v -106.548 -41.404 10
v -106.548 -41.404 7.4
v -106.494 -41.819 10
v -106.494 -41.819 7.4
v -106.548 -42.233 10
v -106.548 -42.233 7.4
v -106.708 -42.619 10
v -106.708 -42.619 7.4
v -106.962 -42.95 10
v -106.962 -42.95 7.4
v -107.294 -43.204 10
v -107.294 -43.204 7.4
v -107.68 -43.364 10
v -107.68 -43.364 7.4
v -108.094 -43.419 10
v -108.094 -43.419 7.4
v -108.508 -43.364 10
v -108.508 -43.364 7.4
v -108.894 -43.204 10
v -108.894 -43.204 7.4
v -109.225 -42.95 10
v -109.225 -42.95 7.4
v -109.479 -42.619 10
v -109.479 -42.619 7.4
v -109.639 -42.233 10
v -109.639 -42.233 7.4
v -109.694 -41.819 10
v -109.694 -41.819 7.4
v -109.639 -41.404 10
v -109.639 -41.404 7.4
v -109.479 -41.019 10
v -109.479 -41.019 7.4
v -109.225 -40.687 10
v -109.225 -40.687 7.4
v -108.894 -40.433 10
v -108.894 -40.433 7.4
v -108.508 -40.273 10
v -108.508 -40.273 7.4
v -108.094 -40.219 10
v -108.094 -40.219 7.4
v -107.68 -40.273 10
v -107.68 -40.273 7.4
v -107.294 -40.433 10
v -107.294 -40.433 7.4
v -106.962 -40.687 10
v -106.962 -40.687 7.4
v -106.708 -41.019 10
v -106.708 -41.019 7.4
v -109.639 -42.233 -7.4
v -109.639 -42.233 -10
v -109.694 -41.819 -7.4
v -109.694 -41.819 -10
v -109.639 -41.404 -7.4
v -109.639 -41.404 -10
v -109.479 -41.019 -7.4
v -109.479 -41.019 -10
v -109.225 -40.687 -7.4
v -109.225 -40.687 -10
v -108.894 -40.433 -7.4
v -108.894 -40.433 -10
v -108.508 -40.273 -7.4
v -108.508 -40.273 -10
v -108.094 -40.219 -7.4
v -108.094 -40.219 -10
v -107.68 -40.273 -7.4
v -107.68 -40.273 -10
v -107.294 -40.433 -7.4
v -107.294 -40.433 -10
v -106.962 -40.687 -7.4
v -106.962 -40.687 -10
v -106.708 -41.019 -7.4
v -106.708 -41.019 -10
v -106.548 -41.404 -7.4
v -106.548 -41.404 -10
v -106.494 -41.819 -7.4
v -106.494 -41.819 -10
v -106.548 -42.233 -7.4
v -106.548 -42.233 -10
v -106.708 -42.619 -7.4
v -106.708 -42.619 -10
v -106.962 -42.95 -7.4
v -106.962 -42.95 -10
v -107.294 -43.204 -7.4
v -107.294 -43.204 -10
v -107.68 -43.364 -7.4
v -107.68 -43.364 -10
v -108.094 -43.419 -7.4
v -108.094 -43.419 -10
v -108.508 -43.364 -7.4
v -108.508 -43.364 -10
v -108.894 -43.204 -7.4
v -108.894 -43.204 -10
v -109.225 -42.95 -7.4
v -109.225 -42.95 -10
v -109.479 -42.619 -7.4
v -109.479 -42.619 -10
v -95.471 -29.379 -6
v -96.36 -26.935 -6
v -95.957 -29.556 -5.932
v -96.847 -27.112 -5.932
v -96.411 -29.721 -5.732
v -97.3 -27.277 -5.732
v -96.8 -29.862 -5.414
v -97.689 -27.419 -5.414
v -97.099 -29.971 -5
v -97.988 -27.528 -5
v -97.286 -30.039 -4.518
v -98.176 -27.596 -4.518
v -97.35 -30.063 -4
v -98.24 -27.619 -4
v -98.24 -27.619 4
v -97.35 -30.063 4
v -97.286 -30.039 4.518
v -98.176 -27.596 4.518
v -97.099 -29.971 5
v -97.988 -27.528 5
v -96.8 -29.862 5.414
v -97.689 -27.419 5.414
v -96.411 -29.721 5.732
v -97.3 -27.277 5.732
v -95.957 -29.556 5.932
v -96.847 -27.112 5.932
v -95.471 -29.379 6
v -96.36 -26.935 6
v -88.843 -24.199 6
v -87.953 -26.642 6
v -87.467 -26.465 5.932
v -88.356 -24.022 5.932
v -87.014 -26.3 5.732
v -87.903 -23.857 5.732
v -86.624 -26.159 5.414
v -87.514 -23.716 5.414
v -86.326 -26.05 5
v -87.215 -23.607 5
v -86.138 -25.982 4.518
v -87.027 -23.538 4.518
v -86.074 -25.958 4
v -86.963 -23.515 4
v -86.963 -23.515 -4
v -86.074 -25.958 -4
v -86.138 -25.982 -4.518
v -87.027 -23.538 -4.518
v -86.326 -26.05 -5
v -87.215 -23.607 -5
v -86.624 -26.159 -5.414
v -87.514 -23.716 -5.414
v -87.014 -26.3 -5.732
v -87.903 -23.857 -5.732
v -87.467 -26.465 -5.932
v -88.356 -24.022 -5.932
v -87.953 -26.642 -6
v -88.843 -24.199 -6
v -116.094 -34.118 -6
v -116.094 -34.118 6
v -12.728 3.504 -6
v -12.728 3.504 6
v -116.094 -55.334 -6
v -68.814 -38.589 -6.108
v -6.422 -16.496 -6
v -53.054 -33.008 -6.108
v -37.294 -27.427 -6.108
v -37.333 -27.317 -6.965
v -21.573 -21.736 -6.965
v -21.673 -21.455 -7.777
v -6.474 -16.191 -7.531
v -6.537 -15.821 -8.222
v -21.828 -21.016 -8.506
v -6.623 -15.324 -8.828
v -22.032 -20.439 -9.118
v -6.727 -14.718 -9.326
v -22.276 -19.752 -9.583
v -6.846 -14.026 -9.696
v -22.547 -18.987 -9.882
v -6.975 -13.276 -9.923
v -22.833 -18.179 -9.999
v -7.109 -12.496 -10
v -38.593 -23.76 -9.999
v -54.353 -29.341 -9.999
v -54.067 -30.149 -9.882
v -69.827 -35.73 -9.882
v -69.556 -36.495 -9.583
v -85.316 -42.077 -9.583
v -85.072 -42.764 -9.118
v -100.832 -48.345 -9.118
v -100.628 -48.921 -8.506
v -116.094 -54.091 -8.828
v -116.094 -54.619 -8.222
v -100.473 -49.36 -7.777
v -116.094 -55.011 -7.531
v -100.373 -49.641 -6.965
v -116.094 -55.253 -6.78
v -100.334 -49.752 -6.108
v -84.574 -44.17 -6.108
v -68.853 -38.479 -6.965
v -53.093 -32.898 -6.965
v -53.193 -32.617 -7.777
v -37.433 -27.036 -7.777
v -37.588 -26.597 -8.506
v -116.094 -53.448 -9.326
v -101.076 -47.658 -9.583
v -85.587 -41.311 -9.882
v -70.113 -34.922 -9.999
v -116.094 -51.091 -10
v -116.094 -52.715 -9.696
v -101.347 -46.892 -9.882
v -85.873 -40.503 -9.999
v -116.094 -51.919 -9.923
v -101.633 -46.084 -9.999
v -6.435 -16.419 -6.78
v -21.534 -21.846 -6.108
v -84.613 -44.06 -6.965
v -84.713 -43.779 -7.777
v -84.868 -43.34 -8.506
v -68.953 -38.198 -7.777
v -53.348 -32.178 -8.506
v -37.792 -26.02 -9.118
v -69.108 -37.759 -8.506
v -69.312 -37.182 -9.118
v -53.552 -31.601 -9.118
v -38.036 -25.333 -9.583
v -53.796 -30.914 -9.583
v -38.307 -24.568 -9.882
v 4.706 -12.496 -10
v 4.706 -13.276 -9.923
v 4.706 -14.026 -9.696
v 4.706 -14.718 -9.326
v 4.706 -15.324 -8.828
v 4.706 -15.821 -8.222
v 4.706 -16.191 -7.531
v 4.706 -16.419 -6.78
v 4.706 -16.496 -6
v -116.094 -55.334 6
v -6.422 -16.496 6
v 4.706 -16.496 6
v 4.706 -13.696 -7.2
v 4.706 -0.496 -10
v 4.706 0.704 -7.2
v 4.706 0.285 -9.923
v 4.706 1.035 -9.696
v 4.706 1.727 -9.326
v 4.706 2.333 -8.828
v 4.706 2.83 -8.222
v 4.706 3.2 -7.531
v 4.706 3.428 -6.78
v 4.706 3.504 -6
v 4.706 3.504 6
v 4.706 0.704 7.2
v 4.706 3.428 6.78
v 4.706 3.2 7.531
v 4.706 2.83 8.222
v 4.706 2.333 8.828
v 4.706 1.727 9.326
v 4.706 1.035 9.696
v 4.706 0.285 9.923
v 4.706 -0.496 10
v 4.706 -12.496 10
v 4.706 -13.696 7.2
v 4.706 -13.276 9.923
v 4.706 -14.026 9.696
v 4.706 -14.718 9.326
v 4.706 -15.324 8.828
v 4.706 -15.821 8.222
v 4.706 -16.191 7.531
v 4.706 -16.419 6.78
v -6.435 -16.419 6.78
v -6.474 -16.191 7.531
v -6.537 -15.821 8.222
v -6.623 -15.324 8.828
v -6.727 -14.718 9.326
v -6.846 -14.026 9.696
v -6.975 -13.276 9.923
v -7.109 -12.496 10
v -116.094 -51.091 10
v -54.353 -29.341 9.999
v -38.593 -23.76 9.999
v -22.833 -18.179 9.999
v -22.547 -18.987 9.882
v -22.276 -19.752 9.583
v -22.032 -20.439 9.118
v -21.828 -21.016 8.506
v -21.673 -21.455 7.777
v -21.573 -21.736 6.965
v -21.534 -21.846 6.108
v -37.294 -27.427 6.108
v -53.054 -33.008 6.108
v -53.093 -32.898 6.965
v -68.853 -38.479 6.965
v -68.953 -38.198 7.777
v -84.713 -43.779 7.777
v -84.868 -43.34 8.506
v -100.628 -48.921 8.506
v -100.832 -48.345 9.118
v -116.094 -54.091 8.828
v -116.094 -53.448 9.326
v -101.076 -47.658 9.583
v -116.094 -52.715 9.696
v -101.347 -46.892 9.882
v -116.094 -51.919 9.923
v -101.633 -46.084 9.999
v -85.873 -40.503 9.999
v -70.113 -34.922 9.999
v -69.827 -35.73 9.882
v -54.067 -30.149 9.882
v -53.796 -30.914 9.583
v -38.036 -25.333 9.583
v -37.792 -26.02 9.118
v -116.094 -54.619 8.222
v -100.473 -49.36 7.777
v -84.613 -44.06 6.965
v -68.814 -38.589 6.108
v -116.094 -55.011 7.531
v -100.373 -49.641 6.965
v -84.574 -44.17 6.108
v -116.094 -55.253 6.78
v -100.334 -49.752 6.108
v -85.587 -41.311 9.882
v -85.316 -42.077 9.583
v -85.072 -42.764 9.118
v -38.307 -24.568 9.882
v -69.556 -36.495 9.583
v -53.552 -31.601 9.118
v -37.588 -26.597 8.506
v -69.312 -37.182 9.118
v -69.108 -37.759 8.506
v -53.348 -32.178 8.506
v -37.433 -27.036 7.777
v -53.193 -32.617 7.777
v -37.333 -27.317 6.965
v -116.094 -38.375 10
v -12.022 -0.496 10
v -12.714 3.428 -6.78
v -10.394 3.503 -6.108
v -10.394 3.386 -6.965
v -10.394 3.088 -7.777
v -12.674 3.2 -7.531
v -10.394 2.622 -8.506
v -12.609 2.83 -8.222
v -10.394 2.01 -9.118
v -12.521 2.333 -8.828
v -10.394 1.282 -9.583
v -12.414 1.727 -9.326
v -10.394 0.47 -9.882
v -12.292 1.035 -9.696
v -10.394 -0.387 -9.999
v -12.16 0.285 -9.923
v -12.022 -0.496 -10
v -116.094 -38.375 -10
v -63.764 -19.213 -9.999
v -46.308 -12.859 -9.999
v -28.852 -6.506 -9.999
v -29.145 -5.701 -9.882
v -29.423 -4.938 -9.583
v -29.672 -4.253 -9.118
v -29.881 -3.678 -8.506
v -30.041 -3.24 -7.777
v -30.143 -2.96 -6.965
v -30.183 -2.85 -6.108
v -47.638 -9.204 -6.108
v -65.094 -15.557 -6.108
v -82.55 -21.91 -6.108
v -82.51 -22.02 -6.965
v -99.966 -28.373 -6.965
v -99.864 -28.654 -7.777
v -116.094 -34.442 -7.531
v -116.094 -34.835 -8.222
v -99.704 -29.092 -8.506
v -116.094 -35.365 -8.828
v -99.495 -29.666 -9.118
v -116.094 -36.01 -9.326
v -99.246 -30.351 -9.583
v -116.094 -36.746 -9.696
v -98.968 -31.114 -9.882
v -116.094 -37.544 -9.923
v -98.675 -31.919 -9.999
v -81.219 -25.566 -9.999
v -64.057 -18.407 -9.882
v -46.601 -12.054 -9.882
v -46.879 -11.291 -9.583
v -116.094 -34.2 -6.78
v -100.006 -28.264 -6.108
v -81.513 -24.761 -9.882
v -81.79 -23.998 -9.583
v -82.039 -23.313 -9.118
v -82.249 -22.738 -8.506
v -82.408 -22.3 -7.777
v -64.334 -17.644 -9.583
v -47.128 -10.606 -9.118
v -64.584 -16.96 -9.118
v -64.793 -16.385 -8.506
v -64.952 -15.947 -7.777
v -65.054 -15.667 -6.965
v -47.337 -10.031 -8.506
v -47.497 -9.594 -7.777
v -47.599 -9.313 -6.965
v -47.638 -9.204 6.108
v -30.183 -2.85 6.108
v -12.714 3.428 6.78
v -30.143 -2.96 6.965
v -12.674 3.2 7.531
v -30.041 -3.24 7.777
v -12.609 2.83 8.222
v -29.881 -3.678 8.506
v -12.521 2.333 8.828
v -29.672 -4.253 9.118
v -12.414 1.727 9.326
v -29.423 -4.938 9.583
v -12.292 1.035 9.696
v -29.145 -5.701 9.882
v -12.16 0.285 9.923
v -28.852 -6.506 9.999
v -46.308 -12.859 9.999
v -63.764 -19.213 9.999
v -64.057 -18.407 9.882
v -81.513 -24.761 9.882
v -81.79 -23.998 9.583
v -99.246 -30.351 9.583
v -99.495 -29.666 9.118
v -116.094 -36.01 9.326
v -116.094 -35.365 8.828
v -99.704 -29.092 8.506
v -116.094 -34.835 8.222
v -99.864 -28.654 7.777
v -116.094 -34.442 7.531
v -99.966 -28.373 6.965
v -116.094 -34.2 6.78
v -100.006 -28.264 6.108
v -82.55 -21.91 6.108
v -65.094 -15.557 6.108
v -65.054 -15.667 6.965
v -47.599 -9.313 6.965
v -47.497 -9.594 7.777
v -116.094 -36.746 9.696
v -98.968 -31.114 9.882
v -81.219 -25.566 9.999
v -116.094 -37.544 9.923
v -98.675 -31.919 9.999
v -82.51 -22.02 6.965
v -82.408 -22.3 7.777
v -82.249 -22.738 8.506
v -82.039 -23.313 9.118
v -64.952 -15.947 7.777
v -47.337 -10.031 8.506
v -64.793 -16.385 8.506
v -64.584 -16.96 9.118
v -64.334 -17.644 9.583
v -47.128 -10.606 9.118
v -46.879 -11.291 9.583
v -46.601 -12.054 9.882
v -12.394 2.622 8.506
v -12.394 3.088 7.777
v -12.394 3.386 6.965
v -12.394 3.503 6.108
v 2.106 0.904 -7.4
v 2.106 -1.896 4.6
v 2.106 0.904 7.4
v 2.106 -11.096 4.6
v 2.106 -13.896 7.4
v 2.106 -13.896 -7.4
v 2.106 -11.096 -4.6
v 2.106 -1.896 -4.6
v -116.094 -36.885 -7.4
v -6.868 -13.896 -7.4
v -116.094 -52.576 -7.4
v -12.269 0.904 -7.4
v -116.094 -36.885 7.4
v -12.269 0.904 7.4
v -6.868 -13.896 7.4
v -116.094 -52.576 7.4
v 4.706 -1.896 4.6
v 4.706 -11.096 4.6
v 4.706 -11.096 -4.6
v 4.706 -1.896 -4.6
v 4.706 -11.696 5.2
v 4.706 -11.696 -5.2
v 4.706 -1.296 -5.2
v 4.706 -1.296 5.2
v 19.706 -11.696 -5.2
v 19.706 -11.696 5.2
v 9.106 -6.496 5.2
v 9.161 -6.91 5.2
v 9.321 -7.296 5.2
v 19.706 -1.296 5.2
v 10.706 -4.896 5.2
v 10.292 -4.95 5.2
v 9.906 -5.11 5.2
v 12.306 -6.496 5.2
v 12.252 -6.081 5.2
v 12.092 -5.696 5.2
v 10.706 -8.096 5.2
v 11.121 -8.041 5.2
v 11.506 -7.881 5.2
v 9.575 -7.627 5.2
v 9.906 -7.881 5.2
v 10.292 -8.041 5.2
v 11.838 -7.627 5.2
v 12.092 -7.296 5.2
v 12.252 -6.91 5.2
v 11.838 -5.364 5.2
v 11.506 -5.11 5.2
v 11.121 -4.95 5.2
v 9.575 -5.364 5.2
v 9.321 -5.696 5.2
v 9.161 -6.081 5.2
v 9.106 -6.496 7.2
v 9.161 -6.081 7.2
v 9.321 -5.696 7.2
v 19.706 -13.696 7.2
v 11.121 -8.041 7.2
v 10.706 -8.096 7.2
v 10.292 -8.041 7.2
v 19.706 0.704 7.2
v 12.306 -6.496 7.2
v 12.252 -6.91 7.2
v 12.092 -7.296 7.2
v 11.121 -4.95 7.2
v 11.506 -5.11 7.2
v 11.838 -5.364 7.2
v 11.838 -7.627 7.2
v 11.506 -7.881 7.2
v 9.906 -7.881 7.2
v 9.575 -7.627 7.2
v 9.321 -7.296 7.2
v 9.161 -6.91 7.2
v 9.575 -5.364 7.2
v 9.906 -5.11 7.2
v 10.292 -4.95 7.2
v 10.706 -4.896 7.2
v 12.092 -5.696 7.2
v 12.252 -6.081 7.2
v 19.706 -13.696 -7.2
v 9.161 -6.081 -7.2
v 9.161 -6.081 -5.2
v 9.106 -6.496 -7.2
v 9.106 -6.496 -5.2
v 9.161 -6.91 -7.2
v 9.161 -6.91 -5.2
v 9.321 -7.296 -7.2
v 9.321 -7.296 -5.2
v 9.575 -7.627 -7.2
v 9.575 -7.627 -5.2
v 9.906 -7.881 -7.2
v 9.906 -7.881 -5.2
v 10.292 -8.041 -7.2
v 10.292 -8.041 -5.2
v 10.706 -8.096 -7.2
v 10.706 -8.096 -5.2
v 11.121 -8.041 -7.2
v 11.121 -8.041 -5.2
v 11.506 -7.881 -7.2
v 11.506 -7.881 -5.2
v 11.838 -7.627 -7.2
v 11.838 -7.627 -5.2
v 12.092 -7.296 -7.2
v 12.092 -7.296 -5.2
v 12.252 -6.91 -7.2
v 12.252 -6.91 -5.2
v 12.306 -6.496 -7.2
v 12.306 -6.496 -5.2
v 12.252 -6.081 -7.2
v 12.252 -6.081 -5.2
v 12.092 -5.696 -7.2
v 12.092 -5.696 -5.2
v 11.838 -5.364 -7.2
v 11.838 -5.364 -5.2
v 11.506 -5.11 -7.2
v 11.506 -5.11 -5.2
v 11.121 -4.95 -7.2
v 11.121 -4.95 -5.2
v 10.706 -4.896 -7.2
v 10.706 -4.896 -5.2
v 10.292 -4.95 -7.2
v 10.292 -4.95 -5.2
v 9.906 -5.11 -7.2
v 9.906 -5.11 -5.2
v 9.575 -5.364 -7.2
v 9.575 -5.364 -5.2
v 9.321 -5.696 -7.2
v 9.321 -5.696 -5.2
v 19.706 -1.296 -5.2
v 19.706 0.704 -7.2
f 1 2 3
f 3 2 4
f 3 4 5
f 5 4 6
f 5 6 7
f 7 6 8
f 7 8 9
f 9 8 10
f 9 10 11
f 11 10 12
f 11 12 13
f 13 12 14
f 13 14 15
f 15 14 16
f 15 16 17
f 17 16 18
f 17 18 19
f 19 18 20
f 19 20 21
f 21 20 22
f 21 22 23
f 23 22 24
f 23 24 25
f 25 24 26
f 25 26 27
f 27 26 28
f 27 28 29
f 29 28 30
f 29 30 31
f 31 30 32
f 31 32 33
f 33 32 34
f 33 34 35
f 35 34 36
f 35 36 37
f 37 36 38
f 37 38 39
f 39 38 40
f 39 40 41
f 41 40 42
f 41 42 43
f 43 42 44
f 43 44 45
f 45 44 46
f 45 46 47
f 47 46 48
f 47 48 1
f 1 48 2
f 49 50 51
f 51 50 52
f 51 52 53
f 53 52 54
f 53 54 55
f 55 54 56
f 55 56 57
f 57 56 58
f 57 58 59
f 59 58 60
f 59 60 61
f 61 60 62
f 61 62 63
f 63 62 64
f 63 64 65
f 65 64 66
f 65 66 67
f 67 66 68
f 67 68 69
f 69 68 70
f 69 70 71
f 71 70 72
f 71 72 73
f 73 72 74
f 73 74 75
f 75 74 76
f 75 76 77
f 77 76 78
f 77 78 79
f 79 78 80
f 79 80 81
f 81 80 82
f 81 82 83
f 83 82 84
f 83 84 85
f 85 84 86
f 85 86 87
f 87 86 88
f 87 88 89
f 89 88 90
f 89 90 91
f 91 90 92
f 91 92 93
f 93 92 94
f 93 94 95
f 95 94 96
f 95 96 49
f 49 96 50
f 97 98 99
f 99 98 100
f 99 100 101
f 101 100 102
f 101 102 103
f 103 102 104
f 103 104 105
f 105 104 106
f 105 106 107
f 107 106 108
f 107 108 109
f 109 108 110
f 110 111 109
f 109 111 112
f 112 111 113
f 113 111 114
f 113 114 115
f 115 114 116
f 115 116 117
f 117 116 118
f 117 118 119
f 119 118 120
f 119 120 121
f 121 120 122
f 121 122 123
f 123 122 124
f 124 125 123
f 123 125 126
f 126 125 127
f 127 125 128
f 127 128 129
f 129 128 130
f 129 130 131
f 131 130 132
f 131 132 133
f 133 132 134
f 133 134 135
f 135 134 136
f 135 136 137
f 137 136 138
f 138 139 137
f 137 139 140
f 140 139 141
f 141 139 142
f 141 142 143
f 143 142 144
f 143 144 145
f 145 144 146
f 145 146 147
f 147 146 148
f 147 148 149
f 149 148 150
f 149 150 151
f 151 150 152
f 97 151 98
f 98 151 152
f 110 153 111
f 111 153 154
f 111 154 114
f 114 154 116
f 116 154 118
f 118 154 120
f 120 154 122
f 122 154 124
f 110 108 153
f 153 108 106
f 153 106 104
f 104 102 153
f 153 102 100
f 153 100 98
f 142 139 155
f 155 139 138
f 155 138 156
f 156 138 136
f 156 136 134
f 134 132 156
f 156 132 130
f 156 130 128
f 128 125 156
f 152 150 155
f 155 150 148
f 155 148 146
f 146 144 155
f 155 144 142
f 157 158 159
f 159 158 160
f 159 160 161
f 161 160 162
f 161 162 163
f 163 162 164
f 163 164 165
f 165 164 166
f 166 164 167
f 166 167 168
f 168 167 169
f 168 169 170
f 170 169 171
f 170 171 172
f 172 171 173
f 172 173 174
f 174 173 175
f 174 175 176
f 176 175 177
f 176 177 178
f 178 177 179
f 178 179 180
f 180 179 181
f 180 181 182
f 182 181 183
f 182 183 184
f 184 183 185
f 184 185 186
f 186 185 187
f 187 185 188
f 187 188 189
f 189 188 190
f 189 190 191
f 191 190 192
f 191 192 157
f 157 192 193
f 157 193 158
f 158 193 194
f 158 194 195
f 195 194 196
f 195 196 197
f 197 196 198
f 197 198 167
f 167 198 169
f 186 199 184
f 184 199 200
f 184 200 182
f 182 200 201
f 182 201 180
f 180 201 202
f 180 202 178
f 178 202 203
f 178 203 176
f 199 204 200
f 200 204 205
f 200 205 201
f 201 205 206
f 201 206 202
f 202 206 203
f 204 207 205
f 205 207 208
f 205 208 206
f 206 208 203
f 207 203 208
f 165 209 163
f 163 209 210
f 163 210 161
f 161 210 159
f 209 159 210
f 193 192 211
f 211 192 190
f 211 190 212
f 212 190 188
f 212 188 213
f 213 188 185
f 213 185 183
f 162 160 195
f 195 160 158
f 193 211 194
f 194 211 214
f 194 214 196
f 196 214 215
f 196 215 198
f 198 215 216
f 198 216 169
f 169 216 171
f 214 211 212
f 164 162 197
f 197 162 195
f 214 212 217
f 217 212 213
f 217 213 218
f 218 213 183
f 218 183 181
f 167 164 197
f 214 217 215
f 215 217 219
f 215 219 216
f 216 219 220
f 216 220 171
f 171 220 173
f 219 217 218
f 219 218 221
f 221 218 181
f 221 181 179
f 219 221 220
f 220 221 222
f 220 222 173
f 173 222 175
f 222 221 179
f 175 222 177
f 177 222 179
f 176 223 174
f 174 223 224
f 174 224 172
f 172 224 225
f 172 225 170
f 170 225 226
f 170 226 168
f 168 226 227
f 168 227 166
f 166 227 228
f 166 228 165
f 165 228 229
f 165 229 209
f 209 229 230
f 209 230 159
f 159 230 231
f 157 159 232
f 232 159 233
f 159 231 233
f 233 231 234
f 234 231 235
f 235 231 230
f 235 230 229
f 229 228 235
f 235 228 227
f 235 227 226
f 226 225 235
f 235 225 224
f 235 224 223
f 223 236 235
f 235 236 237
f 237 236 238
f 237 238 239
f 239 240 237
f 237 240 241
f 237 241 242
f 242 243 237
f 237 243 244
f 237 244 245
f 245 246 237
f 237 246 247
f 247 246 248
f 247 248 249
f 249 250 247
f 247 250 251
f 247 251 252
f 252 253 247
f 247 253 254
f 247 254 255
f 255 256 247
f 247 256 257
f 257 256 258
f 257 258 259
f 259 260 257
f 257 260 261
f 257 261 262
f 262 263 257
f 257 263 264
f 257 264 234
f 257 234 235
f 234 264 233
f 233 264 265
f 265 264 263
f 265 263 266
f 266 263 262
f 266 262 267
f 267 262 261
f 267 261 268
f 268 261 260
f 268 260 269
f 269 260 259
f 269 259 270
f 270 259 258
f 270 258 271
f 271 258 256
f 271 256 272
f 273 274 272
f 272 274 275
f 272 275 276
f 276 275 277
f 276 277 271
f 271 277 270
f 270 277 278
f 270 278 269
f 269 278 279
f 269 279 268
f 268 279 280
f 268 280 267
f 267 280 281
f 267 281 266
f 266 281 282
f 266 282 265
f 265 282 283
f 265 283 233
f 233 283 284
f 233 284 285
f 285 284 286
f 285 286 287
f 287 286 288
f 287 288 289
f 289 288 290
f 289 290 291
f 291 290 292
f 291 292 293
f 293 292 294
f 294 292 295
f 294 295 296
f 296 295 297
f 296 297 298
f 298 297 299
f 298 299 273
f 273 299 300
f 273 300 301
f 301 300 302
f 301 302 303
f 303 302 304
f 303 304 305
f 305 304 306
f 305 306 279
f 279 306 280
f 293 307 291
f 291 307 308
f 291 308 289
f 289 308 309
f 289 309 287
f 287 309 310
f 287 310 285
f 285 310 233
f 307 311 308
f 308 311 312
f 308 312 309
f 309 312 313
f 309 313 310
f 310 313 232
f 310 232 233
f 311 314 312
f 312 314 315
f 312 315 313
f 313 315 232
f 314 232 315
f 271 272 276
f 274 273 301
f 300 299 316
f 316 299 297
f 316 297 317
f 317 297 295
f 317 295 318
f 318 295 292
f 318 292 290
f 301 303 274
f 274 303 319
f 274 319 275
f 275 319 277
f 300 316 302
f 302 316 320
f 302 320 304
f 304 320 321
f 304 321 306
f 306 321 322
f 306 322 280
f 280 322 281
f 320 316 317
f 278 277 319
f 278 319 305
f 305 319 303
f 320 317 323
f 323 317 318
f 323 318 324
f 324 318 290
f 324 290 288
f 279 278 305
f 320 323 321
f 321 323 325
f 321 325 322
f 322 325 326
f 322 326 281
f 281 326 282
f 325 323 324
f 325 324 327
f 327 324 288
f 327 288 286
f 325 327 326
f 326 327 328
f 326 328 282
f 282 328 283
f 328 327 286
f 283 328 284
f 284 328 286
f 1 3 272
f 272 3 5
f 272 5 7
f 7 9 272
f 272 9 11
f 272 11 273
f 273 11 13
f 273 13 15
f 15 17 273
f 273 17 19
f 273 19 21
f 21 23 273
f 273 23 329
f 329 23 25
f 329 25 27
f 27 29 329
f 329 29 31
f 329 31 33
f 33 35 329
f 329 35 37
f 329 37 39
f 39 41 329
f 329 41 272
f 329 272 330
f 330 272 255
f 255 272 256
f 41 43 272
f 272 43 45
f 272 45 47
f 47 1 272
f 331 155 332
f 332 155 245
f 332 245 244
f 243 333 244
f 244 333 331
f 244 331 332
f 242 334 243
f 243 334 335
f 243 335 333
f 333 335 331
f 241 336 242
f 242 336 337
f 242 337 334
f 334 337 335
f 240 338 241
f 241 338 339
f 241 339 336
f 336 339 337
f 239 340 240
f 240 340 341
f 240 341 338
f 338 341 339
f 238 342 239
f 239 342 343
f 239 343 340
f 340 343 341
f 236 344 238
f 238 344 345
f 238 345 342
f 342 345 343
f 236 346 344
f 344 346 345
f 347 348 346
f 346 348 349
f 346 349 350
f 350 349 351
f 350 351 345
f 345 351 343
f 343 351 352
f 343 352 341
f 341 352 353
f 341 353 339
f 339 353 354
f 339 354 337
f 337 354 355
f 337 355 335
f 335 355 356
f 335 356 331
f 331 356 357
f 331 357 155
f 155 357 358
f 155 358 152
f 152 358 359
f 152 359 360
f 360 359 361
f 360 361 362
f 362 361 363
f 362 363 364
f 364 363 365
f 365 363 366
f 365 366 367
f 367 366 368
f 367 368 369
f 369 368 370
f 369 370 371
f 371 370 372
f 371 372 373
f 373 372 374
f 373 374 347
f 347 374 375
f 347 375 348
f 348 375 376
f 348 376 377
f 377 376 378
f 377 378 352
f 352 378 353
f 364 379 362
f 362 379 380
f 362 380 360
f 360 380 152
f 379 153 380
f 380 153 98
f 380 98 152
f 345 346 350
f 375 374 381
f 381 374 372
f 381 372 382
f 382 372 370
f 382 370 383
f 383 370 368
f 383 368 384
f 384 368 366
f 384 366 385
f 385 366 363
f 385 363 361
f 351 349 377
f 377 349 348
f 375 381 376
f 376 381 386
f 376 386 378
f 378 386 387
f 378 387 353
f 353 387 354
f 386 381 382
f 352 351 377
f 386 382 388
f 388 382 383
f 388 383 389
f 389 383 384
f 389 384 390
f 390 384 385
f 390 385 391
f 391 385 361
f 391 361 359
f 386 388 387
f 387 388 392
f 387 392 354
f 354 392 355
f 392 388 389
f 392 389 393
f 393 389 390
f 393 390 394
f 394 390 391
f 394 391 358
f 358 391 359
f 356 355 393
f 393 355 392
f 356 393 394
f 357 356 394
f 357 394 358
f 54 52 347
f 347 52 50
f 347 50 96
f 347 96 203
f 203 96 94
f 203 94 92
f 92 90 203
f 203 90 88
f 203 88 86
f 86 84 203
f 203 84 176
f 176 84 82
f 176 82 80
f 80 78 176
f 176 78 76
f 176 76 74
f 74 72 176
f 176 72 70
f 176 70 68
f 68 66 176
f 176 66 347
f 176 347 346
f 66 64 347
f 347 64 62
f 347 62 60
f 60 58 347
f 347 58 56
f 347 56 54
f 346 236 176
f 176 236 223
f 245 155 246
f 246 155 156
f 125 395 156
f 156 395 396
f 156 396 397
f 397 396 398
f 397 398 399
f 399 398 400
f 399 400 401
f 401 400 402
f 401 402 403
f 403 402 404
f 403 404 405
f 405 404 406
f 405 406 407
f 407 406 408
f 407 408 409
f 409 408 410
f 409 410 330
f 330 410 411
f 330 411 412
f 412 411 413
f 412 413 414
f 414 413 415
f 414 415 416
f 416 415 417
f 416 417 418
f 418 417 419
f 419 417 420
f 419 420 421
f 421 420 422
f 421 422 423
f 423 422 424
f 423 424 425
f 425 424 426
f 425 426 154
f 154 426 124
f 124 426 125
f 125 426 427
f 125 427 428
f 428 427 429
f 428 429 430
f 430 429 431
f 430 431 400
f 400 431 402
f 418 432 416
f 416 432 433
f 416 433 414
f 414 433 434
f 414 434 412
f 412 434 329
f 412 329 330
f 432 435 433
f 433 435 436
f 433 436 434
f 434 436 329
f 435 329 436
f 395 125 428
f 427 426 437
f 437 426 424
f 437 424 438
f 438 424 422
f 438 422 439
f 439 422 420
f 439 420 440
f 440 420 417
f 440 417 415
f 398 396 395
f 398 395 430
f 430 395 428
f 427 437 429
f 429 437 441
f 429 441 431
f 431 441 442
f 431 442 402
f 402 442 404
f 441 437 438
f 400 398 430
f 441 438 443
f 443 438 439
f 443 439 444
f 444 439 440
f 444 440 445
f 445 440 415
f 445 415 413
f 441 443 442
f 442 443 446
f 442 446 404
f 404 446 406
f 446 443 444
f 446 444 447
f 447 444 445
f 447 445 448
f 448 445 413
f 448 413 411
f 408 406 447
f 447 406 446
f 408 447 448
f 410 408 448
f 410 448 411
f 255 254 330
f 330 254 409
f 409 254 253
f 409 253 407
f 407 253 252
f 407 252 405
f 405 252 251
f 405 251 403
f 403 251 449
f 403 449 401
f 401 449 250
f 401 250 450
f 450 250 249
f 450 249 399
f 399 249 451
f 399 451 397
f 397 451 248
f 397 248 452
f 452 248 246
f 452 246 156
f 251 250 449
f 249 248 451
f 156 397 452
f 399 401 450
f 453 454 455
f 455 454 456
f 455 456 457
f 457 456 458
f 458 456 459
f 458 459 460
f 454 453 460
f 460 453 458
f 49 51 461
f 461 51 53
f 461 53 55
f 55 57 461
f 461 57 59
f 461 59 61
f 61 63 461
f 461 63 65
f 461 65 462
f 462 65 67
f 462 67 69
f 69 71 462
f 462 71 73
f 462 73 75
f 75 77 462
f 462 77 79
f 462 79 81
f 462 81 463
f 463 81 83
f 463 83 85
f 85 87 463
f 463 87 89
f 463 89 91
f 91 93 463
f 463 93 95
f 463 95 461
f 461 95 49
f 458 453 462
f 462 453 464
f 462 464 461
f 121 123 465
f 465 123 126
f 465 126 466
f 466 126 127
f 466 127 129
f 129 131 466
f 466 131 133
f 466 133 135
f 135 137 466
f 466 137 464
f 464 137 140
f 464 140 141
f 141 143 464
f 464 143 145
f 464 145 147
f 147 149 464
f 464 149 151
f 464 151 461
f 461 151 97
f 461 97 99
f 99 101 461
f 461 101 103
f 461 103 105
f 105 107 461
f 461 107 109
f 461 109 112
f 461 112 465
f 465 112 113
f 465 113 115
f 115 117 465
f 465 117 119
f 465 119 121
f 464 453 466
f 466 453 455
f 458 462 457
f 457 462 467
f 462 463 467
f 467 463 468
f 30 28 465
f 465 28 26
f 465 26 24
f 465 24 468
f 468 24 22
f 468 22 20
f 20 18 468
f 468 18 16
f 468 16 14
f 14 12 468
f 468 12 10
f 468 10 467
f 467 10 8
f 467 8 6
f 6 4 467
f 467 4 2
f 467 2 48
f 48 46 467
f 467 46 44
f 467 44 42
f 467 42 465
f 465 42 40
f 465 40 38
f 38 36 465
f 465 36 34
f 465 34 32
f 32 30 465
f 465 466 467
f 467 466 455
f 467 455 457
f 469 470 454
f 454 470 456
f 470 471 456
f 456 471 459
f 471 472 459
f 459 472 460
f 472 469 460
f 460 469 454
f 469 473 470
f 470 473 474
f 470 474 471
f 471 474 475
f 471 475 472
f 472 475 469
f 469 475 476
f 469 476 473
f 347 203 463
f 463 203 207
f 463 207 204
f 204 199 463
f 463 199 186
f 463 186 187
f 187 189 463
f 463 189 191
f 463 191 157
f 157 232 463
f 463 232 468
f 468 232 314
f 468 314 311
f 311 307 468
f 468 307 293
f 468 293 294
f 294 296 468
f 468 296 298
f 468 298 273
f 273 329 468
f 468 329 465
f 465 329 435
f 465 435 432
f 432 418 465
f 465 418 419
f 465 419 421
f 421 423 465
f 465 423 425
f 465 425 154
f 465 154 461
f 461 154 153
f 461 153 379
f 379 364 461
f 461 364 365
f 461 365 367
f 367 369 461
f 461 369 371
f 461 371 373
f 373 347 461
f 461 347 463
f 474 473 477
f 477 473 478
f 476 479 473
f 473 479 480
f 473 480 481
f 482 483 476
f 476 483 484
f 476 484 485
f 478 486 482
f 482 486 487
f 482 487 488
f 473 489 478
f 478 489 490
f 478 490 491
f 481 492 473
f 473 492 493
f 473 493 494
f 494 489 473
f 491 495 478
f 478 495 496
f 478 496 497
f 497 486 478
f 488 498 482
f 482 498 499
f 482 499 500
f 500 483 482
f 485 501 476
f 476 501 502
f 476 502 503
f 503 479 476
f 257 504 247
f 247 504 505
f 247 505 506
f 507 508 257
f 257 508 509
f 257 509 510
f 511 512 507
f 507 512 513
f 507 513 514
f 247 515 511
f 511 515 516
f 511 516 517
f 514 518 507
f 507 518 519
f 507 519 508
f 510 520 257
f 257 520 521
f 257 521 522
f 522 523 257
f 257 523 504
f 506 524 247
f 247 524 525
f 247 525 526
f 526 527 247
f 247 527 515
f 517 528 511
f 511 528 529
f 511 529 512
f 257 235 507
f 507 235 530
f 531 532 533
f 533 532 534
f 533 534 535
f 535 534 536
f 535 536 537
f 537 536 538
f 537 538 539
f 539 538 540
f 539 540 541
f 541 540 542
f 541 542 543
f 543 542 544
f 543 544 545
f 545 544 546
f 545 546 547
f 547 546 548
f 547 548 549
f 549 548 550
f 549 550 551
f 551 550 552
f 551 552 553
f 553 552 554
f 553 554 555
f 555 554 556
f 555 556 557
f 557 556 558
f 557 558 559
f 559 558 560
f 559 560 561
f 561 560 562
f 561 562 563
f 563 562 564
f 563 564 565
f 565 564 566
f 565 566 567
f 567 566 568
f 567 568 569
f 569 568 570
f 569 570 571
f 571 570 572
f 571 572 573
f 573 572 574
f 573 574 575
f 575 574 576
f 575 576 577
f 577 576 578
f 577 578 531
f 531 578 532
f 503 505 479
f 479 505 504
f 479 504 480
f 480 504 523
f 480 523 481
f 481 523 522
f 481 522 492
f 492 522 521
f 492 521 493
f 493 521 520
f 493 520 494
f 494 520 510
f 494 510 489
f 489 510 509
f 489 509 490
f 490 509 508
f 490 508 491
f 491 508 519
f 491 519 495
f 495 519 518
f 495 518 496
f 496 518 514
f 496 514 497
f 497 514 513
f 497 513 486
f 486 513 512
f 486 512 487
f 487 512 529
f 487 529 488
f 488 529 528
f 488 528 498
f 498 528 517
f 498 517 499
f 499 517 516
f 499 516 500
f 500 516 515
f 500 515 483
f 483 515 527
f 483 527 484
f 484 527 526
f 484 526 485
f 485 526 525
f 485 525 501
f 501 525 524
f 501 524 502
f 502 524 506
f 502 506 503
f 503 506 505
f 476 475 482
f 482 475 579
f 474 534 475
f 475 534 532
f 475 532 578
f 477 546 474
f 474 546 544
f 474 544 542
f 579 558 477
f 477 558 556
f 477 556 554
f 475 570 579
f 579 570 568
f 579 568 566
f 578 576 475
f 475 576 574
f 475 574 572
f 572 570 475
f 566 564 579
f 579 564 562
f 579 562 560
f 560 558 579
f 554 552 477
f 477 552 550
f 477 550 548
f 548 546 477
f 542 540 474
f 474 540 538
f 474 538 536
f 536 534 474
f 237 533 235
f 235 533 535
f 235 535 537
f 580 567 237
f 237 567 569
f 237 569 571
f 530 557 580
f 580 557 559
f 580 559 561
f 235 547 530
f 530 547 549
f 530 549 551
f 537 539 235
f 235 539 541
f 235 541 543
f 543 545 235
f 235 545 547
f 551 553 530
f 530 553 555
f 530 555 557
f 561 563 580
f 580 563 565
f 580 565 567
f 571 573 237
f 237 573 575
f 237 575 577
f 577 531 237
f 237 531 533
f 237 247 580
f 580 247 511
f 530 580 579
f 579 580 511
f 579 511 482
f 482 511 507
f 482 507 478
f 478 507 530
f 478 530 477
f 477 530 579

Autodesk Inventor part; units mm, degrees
ref_plane "YZ Plane" through (0, 0, 0) normal (1, 0, 0) x (0, 1, 0)
ref_plane "XZ Plane" through (0, 0, 0) normal (0, 1, 0) x (-1, 0, 0)
sketch "Skizze1" plane through (0, 0, 0) normal (0, 0, 1) x (1, 0, 0)
  line L0 (4.7064, 3.5044) -> (-12.7276, 3.5044)
  line L1 (-12.7276, 3.5044) -> (-116.0937, -34.1178)
  line L2 (4.7064, 3.5044) -> (4.7064, -16.4956)
  line L3 (4.7064, -16.4956) -> (-6.4216, -16.4956)
  line L4 (-6.4216, -16.4956) -> (-116.0937, -55.3341)
  line L5 (-116.0937, -34.1178) -> (-116.0937, -55.4014)
  line L6 (0, 15.2855) -> (0, -67.1826) projected
  line L7 (-140.2538, 0) -> (28.8665, 0) projected
  point P0 (0, 0)
  dimension "d0" = 17.434
  dimension "d1" = 110
  dimension "d4" = 20
  dimension "d5" = 11.128
  dimension "d38" = 4.7065
  dimension "d39" = 16.4956
  dimension "d40" = 20
  dimension "d44" = 160.499
ref_plane "Arbeitsebene2" through (4.7064, -12.4956, -10) normal (1, 0, 0) x (0, 0, -1)
sketch "Skizze3" plane through (4.7064, -12.4956, -10) normal (1, 0, 0) x (0, 0, -1)
  line L0 (-3, -65.9356) -> (-3, 0) projected
  line L1 (-17.2, 13.2) -> (-2.8, 13.2)
  line L2 (-2.8, 13.2) -> (-2.8, -1.2)
  line L3 (-2.8, -1.2) -> (-17.2, -1.2)
  line L4 (-17.2, -1.2) -> (-17.2, 13.2)
  line L5 (-4.8, 11.2) -> (-15.2, 11.2)
  line L6 (-15.2, 11.2) -> (-15.2, 0.8)
  line L7 (-15.2, 0.8) -> (-4.8, 0.8)
  line L8 (-4.8, 0.8) -> (-4.8, 11.2)
  line L9 (-2.8, -1.2) -> (-17.2, -1.2) projected
  line L10 (-17.2, -1.2) -> (-17.2, 13.2) projected
  point P0 (-3, -1.2)
  point P1 (-3, 0)
  dimension "d13" = 14.4
  dimension "d14" = 14.4
  dimension "d15" = 2
  dimension "d31" = 0
  dimension "d32" = 0
extrude "Extrusion2" add sketch "Skizze3" along normal blind 15 and the other way blind 7.5
sketch "Skizze5" plane through (-2.7936, -13.6956, 7.2) normal (0, 0, 1) x (1, 0, 0)
  circle A0 centre (13.5, 7.2) radius 1.6
  line L0 (22.5, 14.4) -> (22.5, 0) projected
  line L1 (0, 0) -> (22.5, 0) projected
  dimension "d29" = 3.2
  dimension "d47" = 7.2
  dimension "d48" = 9
extrude "Extrusion4" cut sketch "Skizze5" against normal up to surface (14.4 mm away)
extrude "Extrusion5" add sketch "Skizze1" along normal mid plane 20
shell "Wandung2" thickness 2.6 removed faces 2 at (-116.0937, -48.262, 3.3333) at (4.7064, -4.7623, 1.7333)
fillet "Rundung5" radius 4 8 edges at (-64.4106, -15.3067, 10) (-64.4106, -15.3067, -10) (-61.2576, -35.9149, 10) (-61.2576, -35.9149, -10) (-0.8576, -16.4956, 10) (-4.0106, 3.5044, 10) (-4.0106, 3.5044, -10) (-0.8576, -16.4956, -10)
sketch "Skizze6" plane through (-116.0937, -34.1178, 6) normal (-0.3420201, 0.9396926, 0) x (0.9396926, 0.3420201, 0)
  line L0 (31, 12) -> (19, 12)
  line L1 (19, 12) -> (19, 0)
  line L2 (19, 0) -> (31, 0)
  line L3 (31, 0) -> (31, 12)
  line L4 (109.2947, 16) -> (-1.4559, 16) projected
  line L5 (0, 0) -> (0, 12) projected
  point P0 (120.7614, 6)
  dimension "d49" = 12
  dimension "d50" = 12
  dimension "d51" = 4
  dimension "d52" = 19
extrude "Extrusion6" cut sketch "Skizze6" against normal blind 3
fillet "Rundung6" radius 2 4 edges at (-86.5186, -24.7368, -6) (-86.5186, -24.7368, 6) (-97.795, -28.8411, 6) (-97.795, -28.8411, -6)
sketch "Skizze7" plane through (0, 0, 10) normal (0, 0, 1) x (1, 0, 0)
  line L0 (-116.0937, -36.8847) -> (-116.0937, -52.5759) projected
  line L1 (-116.0937, -44.7303) -> (-90.1056, -35.2714)
  line L2 (-116.0937, -44.7303) -> (-88.4377, -44.7303) construction
  circle A0 centre (-108.0937, -41.8185) radius 1.6
  point P0 (0, 0)
  dimension "d56" = 20
  dimension "d57" = 3.2
  dimension "d58" = 8
extrude "Extrusion7" cut sketch "Skizze7" against normal up to surface (20 mm away)
sketch "Skizze8" plane through (0, 0, 0) normal (0, 0, 1) x (1, 0, 0)
  line L0 (68.2789, 41.5515) -> (-80.5987, 41.5515)
  line L1 (-80.5987, 41.5515) -> (-80.5987, -93.926)
  line L2 (-80.5987, -93.926) -> (68.2789, -93.926)
  line L3 (68.2789, -93.926) -> (68.2789, 41.5515)
  point P0 (0, 0)
properties part number "_3D-Druck"
